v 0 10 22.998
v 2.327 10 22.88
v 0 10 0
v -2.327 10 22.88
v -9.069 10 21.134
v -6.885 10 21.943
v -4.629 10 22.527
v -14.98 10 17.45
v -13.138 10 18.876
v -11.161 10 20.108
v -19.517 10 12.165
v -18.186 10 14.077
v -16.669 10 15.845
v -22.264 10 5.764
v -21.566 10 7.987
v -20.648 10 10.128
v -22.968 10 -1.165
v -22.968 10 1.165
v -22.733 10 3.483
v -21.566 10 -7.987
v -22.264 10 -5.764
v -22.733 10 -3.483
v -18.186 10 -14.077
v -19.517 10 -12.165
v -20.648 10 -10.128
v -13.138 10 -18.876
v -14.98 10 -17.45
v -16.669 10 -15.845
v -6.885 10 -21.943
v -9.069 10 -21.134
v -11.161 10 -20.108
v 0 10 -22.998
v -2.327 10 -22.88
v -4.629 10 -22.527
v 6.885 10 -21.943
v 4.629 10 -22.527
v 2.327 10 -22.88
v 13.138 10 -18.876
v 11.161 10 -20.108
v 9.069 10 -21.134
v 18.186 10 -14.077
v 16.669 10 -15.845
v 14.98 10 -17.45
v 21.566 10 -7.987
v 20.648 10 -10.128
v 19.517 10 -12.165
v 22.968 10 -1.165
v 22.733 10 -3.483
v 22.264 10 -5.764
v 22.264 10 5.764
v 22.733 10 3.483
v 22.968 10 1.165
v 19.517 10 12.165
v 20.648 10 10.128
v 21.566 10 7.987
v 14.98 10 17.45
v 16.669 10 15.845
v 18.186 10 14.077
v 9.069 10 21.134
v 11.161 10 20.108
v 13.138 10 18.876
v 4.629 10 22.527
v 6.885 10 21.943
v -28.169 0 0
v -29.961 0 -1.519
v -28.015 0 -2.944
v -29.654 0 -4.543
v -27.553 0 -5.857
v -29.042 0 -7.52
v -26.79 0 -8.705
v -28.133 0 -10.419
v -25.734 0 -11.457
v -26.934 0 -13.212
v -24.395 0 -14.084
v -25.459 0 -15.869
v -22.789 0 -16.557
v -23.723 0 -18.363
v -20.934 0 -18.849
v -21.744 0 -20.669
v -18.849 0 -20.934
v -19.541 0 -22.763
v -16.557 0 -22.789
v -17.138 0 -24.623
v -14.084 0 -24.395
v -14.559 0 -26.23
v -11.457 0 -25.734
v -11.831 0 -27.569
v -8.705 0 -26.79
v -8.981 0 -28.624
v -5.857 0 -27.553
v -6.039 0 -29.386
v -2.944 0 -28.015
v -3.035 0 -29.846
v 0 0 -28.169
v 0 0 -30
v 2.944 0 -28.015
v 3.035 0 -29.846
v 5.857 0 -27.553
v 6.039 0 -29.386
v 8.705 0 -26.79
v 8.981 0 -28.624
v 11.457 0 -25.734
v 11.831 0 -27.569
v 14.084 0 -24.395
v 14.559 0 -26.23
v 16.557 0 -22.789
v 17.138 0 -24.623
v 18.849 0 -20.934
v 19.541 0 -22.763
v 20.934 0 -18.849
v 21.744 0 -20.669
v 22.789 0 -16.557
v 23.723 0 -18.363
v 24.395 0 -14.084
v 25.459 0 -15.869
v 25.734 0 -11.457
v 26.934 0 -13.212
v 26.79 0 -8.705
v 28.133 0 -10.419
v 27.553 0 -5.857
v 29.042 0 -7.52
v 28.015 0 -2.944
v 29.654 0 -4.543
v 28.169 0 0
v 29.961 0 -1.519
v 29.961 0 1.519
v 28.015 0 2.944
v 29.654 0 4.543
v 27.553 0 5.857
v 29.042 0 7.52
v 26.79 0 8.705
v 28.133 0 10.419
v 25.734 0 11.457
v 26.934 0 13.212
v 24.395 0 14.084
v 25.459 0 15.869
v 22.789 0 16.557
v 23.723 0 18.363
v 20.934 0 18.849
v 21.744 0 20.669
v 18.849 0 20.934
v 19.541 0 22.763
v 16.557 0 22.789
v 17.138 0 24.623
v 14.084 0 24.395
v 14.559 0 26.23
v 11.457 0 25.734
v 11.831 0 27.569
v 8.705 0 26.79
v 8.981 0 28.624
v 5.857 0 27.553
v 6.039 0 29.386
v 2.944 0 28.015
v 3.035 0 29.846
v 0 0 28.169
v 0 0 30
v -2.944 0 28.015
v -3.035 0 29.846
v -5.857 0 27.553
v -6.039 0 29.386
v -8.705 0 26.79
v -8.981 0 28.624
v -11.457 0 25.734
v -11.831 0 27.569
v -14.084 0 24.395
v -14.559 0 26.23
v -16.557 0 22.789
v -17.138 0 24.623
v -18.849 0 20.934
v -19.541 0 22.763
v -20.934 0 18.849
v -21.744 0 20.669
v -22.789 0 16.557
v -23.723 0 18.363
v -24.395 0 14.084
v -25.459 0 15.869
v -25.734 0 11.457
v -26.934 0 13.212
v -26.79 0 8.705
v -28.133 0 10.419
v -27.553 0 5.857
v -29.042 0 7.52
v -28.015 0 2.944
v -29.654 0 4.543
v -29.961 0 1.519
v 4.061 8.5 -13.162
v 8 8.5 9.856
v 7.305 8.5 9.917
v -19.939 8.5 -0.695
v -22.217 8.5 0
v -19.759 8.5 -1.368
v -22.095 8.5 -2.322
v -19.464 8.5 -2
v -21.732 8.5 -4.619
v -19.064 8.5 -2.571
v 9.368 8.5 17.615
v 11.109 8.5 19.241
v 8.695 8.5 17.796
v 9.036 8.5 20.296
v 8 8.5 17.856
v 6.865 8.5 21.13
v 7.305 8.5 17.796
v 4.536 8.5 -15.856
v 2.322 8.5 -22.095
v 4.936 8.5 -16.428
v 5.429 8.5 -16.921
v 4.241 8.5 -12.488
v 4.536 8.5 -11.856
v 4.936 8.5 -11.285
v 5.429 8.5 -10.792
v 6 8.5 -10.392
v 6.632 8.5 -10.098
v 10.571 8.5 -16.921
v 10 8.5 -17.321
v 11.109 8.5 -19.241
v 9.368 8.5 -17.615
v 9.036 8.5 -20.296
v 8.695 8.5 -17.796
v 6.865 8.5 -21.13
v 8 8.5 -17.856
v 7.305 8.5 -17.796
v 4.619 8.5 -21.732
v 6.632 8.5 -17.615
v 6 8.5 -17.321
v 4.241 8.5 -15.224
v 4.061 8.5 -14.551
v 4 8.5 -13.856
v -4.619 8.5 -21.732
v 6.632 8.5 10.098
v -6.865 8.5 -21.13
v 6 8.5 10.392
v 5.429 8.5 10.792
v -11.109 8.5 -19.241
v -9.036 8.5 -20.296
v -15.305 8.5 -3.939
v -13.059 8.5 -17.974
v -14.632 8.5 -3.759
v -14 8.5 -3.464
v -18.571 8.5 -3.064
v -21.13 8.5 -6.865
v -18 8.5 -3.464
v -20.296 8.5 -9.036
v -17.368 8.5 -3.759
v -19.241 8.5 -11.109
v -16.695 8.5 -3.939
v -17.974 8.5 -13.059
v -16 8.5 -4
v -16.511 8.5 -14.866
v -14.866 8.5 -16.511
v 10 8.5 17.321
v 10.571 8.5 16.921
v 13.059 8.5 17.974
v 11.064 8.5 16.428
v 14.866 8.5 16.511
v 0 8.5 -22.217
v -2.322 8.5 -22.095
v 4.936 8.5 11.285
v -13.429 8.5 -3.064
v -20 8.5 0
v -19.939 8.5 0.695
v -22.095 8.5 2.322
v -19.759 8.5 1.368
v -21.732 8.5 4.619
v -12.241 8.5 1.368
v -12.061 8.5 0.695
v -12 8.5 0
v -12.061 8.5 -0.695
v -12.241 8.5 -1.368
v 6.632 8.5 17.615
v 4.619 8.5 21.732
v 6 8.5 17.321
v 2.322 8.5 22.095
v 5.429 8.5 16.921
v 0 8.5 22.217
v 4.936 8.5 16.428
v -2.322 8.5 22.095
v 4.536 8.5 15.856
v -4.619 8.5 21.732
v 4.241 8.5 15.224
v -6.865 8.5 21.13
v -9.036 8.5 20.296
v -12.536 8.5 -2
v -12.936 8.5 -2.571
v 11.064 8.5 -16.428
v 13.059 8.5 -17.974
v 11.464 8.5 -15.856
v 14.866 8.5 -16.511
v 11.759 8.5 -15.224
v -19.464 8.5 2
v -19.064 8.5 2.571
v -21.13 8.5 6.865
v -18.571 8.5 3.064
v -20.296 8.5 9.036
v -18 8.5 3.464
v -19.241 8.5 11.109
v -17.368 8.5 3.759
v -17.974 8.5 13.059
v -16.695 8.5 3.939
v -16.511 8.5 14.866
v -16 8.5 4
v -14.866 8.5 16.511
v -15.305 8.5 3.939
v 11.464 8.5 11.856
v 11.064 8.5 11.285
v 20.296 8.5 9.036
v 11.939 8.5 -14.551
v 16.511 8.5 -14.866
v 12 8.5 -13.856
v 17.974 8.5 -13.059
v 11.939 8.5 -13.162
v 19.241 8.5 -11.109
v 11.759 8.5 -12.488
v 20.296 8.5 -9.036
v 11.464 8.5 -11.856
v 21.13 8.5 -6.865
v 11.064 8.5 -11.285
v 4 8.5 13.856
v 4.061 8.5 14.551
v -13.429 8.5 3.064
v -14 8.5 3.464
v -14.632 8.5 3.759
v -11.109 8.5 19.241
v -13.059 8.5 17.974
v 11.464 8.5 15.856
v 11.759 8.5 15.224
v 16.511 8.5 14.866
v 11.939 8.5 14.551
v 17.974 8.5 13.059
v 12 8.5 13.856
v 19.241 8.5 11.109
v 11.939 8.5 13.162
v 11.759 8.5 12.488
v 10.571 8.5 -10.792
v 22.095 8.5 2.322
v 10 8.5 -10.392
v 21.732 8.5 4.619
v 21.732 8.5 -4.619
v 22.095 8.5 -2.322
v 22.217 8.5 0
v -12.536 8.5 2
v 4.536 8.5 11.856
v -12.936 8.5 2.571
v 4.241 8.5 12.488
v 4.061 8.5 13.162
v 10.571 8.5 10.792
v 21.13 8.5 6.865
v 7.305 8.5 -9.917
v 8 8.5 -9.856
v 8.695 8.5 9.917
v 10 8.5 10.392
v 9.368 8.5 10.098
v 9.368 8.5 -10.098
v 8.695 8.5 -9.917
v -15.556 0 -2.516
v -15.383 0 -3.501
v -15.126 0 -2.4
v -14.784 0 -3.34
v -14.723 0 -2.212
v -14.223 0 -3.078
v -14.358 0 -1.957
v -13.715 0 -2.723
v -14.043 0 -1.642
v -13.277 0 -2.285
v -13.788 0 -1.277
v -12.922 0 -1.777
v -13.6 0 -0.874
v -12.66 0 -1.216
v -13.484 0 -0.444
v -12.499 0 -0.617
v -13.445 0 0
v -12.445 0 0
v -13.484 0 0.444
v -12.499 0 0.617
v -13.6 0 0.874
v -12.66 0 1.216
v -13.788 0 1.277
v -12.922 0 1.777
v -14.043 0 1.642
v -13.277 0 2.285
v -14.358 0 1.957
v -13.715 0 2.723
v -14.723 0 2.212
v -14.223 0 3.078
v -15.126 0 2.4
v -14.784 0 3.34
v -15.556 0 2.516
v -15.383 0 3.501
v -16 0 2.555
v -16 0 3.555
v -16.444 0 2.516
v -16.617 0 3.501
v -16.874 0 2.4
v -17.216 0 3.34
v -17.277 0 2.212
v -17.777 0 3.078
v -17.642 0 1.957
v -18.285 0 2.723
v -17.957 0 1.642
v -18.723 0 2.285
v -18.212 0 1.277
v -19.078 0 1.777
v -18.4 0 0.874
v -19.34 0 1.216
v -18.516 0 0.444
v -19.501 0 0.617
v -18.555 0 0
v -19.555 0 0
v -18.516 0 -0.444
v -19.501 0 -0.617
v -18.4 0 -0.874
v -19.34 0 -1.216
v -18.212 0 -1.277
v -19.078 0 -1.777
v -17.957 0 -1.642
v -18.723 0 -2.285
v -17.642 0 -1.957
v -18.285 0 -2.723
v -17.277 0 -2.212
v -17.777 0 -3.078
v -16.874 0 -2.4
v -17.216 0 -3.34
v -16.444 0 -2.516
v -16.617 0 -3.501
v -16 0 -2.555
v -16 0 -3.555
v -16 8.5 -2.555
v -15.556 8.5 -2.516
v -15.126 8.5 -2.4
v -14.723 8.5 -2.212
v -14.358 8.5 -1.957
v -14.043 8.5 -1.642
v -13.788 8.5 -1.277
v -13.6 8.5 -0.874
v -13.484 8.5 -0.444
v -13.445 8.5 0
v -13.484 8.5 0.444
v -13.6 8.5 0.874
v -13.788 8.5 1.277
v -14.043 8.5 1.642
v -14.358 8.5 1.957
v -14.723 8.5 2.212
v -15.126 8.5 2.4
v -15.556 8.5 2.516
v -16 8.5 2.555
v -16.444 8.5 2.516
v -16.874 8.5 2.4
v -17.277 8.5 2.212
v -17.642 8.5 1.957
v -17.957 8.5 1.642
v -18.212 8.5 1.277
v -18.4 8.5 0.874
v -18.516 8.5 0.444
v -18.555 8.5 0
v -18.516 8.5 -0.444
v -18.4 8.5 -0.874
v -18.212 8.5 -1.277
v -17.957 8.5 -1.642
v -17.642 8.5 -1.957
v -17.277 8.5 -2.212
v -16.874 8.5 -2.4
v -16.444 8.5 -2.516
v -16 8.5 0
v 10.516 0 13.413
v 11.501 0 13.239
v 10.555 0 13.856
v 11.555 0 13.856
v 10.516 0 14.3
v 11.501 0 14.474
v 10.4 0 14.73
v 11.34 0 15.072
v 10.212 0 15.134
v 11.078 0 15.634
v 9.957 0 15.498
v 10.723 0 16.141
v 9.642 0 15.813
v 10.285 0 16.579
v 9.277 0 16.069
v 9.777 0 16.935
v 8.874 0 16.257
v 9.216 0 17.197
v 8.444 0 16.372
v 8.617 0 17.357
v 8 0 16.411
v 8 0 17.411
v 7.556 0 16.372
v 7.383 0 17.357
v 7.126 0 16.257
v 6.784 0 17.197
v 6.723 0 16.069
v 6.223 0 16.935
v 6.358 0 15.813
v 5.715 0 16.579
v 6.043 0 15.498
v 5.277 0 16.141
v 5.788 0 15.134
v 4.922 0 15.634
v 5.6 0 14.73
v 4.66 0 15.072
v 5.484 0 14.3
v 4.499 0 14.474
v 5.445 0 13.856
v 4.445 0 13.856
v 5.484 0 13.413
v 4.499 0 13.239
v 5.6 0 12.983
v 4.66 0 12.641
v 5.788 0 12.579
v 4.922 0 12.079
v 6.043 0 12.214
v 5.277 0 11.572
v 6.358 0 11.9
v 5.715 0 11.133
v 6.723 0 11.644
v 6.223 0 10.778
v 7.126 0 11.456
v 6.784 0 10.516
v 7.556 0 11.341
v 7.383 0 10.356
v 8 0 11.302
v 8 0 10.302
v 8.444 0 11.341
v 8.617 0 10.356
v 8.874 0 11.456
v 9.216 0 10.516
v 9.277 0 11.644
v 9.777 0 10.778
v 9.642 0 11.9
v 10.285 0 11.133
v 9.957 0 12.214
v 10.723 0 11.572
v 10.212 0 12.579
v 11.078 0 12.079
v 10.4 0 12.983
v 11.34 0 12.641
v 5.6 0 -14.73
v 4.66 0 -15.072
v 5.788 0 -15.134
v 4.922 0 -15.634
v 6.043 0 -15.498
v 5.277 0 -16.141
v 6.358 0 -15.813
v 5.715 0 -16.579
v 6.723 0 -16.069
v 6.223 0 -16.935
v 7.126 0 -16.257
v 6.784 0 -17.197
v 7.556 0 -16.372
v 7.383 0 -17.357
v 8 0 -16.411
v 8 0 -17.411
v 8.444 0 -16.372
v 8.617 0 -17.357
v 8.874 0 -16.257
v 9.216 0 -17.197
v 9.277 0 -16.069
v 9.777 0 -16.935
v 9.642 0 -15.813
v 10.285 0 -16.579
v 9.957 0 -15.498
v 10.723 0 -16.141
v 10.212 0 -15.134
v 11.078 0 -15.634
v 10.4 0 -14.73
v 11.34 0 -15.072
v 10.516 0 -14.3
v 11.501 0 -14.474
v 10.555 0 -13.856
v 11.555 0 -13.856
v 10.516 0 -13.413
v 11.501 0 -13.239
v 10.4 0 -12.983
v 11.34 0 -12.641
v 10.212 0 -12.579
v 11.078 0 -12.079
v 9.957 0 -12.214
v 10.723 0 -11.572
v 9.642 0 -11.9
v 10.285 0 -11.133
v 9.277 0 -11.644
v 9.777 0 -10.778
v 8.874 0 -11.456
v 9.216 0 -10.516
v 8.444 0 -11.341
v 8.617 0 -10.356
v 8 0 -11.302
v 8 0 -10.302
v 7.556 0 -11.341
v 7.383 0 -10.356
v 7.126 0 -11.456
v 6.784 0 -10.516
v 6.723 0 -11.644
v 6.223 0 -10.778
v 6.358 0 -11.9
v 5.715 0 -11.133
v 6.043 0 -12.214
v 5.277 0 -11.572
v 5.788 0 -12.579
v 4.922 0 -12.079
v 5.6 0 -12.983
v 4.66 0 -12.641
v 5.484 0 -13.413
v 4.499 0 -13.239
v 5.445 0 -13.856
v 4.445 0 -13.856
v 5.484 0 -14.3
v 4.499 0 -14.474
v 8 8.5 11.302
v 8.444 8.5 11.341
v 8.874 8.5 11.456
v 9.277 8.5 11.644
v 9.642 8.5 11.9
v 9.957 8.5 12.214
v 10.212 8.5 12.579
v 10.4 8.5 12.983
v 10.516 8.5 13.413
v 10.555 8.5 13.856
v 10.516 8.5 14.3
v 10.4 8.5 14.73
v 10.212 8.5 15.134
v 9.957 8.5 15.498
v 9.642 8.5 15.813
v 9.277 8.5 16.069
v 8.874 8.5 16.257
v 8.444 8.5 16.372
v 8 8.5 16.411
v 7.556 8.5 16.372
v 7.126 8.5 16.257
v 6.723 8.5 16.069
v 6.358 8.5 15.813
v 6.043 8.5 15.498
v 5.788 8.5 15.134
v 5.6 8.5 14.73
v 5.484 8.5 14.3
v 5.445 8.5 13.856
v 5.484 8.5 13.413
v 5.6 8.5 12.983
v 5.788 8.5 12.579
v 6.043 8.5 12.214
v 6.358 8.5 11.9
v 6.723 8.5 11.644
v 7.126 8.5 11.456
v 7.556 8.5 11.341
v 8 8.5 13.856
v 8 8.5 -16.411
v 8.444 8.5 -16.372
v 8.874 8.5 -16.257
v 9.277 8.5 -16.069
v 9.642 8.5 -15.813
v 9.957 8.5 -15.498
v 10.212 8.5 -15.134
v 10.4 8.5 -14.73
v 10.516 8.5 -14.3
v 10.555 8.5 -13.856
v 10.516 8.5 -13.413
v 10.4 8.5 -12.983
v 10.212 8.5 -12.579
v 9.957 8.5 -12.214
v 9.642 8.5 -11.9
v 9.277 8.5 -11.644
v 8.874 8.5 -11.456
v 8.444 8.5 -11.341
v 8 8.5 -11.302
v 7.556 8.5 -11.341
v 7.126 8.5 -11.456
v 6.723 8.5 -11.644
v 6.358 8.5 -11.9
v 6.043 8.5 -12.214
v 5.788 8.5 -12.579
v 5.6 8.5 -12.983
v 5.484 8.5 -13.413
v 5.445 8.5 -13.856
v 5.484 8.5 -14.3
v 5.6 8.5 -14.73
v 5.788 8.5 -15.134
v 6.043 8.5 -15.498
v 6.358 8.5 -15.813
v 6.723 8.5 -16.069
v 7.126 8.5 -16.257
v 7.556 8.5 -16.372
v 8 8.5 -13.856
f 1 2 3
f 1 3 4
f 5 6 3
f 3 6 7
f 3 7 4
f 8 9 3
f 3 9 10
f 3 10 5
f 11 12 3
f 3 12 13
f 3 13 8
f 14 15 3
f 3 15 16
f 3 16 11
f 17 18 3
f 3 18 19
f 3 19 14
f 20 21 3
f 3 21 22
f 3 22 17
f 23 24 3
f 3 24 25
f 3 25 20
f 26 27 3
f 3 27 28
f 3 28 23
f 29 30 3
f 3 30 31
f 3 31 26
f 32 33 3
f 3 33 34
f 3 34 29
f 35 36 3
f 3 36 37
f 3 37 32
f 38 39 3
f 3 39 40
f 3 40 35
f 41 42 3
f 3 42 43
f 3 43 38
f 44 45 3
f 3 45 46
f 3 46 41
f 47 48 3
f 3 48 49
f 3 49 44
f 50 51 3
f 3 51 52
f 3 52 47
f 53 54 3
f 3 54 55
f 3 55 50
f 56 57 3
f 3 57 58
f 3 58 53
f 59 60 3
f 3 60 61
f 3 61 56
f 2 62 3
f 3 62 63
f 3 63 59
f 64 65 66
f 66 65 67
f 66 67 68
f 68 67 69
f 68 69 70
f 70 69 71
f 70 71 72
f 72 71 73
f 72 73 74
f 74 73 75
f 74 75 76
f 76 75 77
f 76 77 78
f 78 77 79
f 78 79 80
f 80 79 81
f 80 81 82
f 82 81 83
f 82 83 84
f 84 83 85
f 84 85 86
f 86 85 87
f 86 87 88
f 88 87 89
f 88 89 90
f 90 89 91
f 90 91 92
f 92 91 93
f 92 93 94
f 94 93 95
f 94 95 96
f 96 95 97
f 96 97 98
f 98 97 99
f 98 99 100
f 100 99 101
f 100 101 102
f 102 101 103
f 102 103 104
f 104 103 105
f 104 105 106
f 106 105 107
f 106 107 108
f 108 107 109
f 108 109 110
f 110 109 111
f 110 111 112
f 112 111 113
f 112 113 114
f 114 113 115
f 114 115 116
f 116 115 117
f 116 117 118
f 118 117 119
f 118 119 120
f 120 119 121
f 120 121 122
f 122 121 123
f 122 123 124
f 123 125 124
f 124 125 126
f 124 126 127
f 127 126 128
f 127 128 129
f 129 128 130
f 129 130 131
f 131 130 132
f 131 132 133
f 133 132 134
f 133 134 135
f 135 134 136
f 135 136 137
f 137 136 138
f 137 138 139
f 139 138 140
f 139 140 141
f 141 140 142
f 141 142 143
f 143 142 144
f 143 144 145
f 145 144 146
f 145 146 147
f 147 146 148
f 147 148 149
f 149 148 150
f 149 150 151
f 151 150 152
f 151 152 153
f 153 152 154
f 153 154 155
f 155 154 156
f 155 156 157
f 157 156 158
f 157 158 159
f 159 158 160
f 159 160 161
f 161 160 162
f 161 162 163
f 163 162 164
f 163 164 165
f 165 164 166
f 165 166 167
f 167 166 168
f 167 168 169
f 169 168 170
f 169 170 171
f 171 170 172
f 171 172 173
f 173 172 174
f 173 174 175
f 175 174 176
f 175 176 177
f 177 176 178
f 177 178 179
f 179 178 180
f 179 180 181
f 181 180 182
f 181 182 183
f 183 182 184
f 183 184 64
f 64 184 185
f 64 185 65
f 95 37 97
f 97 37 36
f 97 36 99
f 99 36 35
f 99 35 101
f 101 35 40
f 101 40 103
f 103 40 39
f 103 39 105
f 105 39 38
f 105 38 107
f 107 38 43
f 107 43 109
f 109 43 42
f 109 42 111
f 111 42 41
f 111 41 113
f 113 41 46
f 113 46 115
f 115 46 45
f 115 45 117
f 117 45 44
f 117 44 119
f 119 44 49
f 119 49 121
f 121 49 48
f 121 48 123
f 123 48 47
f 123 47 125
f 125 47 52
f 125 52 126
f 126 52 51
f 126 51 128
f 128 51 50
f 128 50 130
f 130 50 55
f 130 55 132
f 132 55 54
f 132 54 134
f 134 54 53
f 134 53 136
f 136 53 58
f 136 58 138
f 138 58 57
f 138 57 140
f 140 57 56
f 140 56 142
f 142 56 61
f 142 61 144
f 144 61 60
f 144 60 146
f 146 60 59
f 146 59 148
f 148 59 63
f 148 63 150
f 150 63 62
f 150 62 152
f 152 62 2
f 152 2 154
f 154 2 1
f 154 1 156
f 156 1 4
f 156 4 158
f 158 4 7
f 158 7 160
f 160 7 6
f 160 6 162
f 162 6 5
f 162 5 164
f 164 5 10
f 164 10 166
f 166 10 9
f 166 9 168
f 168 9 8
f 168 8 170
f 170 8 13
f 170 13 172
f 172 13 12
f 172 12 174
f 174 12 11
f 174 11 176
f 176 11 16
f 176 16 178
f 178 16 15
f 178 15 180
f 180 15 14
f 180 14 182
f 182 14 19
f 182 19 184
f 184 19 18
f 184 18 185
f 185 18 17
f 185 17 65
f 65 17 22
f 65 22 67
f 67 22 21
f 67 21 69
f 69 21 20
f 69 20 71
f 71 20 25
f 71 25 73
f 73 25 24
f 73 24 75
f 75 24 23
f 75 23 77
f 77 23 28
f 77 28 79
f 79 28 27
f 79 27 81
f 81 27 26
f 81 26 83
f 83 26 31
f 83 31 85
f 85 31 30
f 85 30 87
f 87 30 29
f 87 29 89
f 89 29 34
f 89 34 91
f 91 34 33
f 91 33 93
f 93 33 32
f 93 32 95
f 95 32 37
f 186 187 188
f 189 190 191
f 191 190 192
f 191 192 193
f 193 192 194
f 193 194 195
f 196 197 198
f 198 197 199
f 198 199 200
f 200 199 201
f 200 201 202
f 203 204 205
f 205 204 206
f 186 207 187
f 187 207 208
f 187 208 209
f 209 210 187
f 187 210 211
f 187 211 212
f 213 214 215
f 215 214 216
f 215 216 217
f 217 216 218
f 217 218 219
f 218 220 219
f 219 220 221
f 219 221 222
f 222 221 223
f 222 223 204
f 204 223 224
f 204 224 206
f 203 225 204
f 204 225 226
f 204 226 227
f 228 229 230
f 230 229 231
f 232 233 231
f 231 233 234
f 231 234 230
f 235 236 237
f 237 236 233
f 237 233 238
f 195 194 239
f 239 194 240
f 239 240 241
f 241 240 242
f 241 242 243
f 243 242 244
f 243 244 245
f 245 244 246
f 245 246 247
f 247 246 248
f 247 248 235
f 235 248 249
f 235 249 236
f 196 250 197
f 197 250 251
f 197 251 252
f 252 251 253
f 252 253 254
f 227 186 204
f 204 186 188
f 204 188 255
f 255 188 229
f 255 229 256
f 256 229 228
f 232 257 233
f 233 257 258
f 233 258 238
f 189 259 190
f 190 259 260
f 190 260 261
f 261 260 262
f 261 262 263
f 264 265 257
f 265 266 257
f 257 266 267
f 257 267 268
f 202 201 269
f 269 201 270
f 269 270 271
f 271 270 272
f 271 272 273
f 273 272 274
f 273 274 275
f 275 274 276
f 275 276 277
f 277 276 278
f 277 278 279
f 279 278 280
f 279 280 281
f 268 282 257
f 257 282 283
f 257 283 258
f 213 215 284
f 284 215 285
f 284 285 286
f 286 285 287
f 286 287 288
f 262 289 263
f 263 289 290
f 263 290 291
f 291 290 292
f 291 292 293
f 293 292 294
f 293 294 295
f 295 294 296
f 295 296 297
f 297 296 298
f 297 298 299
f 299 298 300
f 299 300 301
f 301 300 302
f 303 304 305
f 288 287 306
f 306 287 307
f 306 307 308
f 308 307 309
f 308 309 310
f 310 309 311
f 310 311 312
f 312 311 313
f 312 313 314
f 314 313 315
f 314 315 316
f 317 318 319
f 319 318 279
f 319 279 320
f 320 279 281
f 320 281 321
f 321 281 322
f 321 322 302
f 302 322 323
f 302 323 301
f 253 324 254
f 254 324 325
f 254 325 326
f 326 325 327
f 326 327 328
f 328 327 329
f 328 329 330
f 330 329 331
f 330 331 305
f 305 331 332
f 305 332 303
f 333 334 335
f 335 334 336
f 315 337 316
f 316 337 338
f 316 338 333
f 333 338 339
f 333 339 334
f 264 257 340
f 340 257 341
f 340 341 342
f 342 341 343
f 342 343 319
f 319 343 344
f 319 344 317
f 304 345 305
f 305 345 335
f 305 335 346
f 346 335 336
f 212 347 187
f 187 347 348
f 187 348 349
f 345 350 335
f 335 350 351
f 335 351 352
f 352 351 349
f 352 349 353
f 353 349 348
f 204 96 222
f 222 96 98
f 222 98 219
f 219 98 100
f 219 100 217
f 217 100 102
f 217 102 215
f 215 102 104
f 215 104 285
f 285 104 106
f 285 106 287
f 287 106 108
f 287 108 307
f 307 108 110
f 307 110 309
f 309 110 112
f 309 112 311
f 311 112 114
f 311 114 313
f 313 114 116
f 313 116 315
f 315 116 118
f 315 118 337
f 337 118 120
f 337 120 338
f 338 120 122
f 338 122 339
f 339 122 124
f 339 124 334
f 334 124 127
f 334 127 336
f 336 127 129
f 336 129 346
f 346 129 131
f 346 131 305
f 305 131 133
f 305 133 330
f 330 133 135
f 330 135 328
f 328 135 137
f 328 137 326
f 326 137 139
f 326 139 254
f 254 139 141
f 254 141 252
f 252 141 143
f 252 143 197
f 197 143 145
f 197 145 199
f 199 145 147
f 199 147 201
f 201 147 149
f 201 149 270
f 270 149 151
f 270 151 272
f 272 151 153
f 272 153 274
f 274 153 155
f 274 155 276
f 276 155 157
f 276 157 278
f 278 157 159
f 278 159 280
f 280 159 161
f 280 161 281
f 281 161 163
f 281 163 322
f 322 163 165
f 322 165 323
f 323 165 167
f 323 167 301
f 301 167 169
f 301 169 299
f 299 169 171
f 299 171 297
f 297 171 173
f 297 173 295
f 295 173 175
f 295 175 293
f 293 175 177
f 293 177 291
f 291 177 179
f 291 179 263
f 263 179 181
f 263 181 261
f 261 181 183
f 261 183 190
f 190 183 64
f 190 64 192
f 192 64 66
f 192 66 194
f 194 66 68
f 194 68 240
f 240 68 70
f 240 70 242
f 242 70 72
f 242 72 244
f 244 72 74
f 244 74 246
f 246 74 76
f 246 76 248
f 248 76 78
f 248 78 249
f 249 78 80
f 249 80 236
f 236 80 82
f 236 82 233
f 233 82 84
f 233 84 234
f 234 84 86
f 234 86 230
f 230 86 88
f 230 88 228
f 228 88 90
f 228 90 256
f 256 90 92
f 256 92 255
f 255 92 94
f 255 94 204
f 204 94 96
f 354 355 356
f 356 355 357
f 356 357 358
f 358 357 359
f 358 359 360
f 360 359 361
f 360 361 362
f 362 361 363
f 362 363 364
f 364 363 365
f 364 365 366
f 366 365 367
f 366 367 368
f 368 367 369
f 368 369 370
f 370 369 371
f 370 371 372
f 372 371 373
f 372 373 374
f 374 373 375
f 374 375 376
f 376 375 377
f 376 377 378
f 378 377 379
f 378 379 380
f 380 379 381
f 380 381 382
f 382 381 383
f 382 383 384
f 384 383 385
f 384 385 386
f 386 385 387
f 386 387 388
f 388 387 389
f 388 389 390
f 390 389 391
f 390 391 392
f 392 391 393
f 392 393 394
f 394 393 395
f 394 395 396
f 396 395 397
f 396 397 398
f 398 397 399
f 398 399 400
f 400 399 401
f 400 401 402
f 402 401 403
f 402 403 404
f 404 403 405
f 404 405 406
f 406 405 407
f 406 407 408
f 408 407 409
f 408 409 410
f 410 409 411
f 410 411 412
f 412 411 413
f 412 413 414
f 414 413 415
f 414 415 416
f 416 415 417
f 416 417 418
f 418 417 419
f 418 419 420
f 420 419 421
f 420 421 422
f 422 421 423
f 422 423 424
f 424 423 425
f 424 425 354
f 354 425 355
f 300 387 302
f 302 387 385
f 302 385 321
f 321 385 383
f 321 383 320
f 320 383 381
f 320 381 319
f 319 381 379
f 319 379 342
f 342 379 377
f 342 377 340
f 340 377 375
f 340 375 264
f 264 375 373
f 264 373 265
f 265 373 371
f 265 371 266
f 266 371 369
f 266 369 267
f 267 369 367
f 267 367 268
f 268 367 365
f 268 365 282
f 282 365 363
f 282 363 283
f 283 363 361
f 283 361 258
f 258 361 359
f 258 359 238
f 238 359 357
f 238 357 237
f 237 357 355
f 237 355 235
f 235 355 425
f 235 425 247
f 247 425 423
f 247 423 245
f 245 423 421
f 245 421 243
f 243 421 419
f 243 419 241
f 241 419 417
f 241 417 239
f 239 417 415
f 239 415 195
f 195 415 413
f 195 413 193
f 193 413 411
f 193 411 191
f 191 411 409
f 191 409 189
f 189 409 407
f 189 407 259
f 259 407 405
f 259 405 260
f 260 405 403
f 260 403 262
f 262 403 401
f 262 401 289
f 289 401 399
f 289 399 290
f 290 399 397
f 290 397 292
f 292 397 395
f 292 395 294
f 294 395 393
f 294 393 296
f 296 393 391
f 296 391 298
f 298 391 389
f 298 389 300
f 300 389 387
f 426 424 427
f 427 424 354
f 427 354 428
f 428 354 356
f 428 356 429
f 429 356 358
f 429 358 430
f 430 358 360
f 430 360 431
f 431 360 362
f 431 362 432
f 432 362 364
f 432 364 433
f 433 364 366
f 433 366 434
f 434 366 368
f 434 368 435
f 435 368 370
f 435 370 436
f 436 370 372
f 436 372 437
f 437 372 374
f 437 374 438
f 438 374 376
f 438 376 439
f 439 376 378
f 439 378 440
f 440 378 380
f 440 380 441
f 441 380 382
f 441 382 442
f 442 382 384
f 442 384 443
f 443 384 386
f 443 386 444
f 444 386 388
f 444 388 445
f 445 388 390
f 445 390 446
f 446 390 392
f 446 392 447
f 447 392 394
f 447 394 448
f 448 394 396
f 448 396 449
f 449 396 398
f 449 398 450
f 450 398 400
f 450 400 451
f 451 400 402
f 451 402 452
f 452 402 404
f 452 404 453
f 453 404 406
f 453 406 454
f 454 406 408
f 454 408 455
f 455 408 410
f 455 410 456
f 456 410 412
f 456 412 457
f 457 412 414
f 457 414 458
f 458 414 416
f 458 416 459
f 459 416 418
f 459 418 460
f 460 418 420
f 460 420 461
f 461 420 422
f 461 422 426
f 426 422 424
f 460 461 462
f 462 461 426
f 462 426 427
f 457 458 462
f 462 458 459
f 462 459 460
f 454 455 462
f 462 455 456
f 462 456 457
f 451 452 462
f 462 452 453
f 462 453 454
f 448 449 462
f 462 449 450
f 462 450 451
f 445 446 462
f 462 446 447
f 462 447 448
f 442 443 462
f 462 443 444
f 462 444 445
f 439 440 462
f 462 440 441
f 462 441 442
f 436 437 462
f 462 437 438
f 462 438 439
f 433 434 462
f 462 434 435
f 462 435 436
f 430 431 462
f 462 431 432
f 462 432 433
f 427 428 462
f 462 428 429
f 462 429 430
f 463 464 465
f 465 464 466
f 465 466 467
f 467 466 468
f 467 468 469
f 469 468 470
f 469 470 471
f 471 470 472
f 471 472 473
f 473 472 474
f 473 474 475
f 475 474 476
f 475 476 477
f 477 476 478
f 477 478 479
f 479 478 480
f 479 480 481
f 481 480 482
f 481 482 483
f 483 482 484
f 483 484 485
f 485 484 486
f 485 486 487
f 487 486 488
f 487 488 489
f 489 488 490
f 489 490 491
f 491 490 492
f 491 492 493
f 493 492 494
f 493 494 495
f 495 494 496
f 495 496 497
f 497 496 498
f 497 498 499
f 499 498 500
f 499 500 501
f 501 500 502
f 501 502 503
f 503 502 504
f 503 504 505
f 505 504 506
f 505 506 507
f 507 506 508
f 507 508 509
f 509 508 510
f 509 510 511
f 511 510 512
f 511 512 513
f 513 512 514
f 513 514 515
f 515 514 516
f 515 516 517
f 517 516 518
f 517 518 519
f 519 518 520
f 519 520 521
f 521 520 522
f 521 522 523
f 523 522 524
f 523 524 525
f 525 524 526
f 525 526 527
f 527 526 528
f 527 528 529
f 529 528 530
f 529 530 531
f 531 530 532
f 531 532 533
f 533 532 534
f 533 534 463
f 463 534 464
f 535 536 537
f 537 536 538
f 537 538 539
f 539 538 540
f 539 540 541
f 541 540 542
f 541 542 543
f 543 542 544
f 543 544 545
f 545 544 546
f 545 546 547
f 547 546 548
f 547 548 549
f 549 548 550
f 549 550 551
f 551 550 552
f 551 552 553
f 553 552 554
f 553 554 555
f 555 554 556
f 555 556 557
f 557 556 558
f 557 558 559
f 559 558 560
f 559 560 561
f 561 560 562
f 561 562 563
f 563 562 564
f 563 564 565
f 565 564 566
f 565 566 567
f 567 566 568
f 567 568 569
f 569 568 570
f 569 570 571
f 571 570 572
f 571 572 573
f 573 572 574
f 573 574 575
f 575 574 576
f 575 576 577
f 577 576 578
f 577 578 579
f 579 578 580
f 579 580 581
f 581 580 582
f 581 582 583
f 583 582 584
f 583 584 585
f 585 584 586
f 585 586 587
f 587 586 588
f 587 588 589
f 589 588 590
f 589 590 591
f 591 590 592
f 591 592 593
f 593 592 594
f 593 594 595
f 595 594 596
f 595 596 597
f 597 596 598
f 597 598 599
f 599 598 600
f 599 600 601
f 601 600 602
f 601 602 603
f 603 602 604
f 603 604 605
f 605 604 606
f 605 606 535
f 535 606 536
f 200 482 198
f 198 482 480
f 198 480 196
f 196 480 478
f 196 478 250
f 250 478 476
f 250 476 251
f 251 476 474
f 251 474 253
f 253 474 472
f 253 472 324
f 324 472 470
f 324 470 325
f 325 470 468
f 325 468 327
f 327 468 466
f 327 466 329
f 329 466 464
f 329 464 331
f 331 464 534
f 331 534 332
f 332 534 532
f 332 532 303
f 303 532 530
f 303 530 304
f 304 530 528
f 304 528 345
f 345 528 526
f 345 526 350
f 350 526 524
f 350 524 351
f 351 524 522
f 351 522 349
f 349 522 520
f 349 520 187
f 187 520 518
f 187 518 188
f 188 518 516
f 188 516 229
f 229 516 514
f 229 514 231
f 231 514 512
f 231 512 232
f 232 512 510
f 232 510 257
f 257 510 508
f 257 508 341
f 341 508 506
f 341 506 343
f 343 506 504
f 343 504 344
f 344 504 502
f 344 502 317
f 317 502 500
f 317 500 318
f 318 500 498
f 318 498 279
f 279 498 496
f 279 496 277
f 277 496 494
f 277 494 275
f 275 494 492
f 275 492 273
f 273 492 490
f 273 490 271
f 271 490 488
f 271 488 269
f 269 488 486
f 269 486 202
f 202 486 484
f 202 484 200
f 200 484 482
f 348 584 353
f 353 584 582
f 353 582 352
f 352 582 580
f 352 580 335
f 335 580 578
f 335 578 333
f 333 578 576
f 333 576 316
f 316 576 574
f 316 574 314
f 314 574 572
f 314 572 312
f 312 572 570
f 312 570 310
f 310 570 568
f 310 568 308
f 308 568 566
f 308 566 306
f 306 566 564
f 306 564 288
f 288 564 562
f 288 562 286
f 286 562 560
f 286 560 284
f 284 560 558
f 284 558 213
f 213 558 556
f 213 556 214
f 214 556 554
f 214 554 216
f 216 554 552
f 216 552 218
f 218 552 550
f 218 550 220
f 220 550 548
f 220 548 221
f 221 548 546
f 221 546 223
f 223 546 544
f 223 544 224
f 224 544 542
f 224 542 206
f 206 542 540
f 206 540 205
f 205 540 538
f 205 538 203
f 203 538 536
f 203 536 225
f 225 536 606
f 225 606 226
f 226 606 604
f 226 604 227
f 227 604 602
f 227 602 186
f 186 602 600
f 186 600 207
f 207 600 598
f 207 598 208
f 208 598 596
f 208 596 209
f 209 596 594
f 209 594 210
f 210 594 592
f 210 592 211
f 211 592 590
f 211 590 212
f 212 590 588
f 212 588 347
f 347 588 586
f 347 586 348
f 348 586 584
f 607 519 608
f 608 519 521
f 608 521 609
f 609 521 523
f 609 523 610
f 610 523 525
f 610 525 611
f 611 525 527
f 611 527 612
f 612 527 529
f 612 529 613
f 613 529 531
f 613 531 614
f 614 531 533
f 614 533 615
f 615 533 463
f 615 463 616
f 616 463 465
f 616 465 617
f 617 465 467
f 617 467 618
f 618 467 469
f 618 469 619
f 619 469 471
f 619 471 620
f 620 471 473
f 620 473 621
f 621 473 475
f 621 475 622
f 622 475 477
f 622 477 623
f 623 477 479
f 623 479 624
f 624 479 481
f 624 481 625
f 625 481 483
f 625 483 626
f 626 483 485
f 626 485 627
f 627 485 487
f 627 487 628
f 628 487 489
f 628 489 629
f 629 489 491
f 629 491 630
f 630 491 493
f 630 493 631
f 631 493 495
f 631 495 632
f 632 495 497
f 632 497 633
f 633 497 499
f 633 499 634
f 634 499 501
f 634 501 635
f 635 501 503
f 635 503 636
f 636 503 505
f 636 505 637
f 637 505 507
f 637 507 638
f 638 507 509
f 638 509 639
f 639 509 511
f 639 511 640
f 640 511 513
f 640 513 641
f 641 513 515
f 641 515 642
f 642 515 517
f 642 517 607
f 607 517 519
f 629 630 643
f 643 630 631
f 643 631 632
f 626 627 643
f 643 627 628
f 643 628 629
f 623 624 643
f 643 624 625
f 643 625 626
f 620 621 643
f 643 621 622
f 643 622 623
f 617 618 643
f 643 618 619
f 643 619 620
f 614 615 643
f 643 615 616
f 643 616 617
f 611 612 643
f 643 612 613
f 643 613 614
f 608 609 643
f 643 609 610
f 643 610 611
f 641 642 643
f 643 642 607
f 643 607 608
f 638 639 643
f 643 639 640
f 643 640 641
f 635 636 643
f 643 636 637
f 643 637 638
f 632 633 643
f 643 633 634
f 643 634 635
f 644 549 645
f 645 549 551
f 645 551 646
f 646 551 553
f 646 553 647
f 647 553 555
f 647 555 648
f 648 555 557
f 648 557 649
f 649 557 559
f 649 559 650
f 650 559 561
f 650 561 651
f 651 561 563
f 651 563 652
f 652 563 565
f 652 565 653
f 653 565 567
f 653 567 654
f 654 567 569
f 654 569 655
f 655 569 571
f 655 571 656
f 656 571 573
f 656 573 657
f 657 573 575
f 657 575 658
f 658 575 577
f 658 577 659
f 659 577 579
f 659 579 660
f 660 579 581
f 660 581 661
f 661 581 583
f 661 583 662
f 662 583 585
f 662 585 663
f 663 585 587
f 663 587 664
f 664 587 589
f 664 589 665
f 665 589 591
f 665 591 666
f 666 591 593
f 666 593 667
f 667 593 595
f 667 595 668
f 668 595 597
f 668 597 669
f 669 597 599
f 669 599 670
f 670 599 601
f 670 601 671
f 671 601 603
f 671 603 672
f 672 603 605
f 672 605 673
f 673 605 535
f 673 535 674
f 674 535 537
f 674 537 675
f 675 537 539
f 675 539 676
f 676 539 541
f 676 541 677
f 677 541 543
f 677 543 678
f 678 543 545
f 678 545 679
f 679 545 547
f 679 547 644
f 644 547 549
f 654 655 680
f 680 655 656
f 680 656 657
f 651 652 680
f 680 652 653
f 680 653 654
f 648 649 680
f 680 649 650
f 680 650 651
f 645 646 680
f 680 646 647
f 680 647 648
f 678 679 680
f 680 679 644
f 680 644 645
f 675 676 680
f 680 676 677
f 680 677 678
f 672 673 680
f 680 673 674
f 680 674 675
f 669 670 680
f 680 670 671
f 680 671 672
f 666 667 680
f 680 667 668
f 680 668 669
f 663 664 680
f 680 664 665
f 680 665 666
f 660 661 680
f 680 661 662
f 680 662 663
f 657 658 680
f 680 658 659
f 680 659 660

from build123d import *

# Parameters (mm, degrees)
ESQUISSE1_R                                 = 30
BOSS_EXTRU_1_DEPTH                          = 10
CHANFREIN1_SIZE                             = 10
CHANFREIN1_SIZE_2                           = 7.002075382
COQUE2_T                                    = -1.5
ESQUISSE2_R                                 = 4
BOSS_EXTRU_2_DEPTH                          = 8.5
CHANFREIN2_SIZE                             = 8.5
CHANFREIN2_SIZE_2                           = 0.445466124
ESQUISSE5_R                                 = 2.554533876
ENL_V_MAT_EXTRU_1_DEPTH                     = 8.5
R_P_TITION_CIRCULAIRE1_COUNT                = 3
CHANFREIN2_OF_R_P_TITION_CIRCULAIRE1_SIZE   = 8.5
CHANFREIN2_OF_R_P_TITION_CIRCULAIRE1_SIZE_2 = 0.445466124


with BuildPart() as part:
    # Esquisse1 → Boss.-Extru.1 (new body)
    with BuildSketch(Plane(origin=(0, 0, 0), x_dir=(1, 0, 0), z_dir=(0, 1, 0))):
        with Locations(Location((0, 0, 0), (0, 0, 270))):
            Circle(ESQUISSE1_R)
    extrude(amount=BOSS_EXTRU_1_DEPTH)

    # Chanfrein1
    # the kernel refuses this chamfer: 10, 7.002075382 mm, written as the material it takes off along each edge
    with BuildSketch(Plane(origin=(0, 10, 0), x_dir=(0, 0, 1), z_dir=(-1, 0, 0))) as chanfrein1_piece_1:
        Polygon((30, -CHANFREIN1_SIZE), (30 - CHANFREIN1_SIZE_2, 0), (30, 0), align=None)
    revolve(axis=Axis((0, 10, 0), (0, 1, 0)), mode=Mode.SUBTRACT)

    # Coque2
    coque2_openings = [part.faces().sort_by_distance(p)[0] for p in [
        (0, 0, 0),
    ]]
    offset(amount=COQUE2_T, openings=coque2_openings, kind=Kind.INTERSECTION)

    # Esquisse2 → Boss.-Extru.2 (add)
    with BuildSketch(Plane.XZ.offset(-8.5)):
        with Locations(Location((-16, 0, 0), (0, 0, 90))):
            Circle(ESQUISSE2_R)
    boss_extru_2 = extrude(amount=BOSS_EXTRU_2_DEPTH)

    # Chanfrein2
    # the kernel refuses this chamfer: 8.5, 0.445466124 mm, written as the material it takes off along each edge
    with BuildSketch(Plane(origin=(-16, 0, 0), x_dir=(0, 0, 1), z_dir=(1, 0, 0))) as chanfrein2_piece_1_section:
        Polygon((4, -CHANFREIN2_SIZE), (4 - CHANFREIN2_SIZE_2, 0), (4, 0), align=None)
    chanfrein2_piece_1 = revolve(axis=Axis((-16, 0, 0), (0, -1, 0)), mode=Mode.PRIVATE)
    chanfrein2_piece_1 = split(chanfrein2_piece_1, bisect_by=Plane(origin=(-16, 8.5, -3.812448858), z_dir=(0, -1, 0)), keep=Keep.TOP, mode=Mode.PRIVATE)
    add(chanfrein2_piece_1, mode=Mode.SUBTRACT)

    # Esquisse5 → Enlèv. mat.-Extru.1 (cut)
    with BuildSketch(Plane.XZ):
        with Locations(Location((-16, 0, 0), (0, 0, 270))):
            Circle(ESQUISSE5_R)
    enl_v_mat_extru_1 = extrude(amount=-ENL_V_MAT_EXTRU_1_DEPTH, mode=Mode.SUBTRACT)

    # Répétition circulaire1: Boss.-Extru.2, Enlèv. mat.-Extru.1 ×3 about axis
    r_p_tition_circulaire1_axis = Axis((0, 0, 0), (0, 1, 0))
    add([boss_extru_2.rotate(r_p_tition_circulaire1_axis, i * 360 / R_P_TITION_CIRCULAIRE1_COUNT) for i in range(1, R_P_TITION_CIRCULAIRE1_COUNT)])
    add([enl_v_mat_extru_1.rotate(r_p_tition_circulaire1_axis, i * 360 / R_P_TITION_CIRCULAIRE1_COUNT) for i in range(1, R_P_TITION_CIRCULAIRE1_COUNT)], mode=Mode.SUBTRACT)

    # Chanfrein2 of Répétition circulaire1
    # the kernel refuses this chamfer: 8.5, 0.445466124 mm, written as the material it takes off along each edge
    with BuildSketch(Plane(origin=(8, 0, 13.856406461), x_dir=(0.8660254037844387, 0, -0.5000000000000001), z_dir=(-0.5000000000000001, 0, -0.8660254037844387))) as chanfrein2_of_r_p_tition_circulaire1_piece_1_section:
        Polygon((4, -CHANFREIN2_OF_R_P_TITION_CIRCULAIRE1_SIZE), (4 - CHANFREIN2_OF_R_P_TITION_CIRCULAIRE1_SIZE_2, 0), (4, 0), align=None)
    chanfrein2_of_r_p_tition_circulaire1_piece_1 = revolve(axis=Axis((8, 0, 13.856406461), (0, -1, 0)), mode=Mode.PRIVATE)
    chanfrein2_of_r_p_tition_circulaire1_piece_1 = split(chanfrein2_of_r_p_tition_circulaire1_piece_1, bisect_by=Plane(origin=(4.698322438, 8.5, 15.762630889), z_dir=(0, -1, 0)), keep=Keep.TOP, mode=Mode.PRIVATE)
    add(chanfrein2_of_r_p_tition_circulaire1_piece_1, mode=Mode.SUBTRACT)
    with BuildSketch(Plane(origin=(8, 0, -13.856406461), x_dir=(-0.8660254037844384, 0, -0.5000000000000003), z_dir=(-0.5000000000000003, 0, 0.8660254037844384))) as chanfrein2_of_r_p_tition_circulaire1_piece_2_section:
        Polygon((4, -CHANFREIN2_OF_R_P_TITION_CIRCULAIRE1_SIZE), (4 - CHANFREIN2_OF_R_P_TITION_CIRCULAIRE1_SIZE_2, 0), (4, 0), align=None)
    chanfrein2_of_r_p_tition_circulaire1_piece_2 = revolve(axis=Axis((8, 0, -13.856406461), (0, -1, 0)), mode=Mode.PRIVATE)
    chanfrein2_of_r_p_tition_circulaire1_piece_2 = split(chanfrein2_of_r_p_tition_circulaire1_piece_2, bisect_by=Plane(origin=(11.301677562, 8.5, -11.950182032), z_dir=(0, -1, 0)), keep=Keep.TOP, mode=Mode.PRIVATE)
    add(chanfrein2_of_r_p_tition_circulaire1_piece_2, mode=Mode.SUBTRACT)


solid = part.part
